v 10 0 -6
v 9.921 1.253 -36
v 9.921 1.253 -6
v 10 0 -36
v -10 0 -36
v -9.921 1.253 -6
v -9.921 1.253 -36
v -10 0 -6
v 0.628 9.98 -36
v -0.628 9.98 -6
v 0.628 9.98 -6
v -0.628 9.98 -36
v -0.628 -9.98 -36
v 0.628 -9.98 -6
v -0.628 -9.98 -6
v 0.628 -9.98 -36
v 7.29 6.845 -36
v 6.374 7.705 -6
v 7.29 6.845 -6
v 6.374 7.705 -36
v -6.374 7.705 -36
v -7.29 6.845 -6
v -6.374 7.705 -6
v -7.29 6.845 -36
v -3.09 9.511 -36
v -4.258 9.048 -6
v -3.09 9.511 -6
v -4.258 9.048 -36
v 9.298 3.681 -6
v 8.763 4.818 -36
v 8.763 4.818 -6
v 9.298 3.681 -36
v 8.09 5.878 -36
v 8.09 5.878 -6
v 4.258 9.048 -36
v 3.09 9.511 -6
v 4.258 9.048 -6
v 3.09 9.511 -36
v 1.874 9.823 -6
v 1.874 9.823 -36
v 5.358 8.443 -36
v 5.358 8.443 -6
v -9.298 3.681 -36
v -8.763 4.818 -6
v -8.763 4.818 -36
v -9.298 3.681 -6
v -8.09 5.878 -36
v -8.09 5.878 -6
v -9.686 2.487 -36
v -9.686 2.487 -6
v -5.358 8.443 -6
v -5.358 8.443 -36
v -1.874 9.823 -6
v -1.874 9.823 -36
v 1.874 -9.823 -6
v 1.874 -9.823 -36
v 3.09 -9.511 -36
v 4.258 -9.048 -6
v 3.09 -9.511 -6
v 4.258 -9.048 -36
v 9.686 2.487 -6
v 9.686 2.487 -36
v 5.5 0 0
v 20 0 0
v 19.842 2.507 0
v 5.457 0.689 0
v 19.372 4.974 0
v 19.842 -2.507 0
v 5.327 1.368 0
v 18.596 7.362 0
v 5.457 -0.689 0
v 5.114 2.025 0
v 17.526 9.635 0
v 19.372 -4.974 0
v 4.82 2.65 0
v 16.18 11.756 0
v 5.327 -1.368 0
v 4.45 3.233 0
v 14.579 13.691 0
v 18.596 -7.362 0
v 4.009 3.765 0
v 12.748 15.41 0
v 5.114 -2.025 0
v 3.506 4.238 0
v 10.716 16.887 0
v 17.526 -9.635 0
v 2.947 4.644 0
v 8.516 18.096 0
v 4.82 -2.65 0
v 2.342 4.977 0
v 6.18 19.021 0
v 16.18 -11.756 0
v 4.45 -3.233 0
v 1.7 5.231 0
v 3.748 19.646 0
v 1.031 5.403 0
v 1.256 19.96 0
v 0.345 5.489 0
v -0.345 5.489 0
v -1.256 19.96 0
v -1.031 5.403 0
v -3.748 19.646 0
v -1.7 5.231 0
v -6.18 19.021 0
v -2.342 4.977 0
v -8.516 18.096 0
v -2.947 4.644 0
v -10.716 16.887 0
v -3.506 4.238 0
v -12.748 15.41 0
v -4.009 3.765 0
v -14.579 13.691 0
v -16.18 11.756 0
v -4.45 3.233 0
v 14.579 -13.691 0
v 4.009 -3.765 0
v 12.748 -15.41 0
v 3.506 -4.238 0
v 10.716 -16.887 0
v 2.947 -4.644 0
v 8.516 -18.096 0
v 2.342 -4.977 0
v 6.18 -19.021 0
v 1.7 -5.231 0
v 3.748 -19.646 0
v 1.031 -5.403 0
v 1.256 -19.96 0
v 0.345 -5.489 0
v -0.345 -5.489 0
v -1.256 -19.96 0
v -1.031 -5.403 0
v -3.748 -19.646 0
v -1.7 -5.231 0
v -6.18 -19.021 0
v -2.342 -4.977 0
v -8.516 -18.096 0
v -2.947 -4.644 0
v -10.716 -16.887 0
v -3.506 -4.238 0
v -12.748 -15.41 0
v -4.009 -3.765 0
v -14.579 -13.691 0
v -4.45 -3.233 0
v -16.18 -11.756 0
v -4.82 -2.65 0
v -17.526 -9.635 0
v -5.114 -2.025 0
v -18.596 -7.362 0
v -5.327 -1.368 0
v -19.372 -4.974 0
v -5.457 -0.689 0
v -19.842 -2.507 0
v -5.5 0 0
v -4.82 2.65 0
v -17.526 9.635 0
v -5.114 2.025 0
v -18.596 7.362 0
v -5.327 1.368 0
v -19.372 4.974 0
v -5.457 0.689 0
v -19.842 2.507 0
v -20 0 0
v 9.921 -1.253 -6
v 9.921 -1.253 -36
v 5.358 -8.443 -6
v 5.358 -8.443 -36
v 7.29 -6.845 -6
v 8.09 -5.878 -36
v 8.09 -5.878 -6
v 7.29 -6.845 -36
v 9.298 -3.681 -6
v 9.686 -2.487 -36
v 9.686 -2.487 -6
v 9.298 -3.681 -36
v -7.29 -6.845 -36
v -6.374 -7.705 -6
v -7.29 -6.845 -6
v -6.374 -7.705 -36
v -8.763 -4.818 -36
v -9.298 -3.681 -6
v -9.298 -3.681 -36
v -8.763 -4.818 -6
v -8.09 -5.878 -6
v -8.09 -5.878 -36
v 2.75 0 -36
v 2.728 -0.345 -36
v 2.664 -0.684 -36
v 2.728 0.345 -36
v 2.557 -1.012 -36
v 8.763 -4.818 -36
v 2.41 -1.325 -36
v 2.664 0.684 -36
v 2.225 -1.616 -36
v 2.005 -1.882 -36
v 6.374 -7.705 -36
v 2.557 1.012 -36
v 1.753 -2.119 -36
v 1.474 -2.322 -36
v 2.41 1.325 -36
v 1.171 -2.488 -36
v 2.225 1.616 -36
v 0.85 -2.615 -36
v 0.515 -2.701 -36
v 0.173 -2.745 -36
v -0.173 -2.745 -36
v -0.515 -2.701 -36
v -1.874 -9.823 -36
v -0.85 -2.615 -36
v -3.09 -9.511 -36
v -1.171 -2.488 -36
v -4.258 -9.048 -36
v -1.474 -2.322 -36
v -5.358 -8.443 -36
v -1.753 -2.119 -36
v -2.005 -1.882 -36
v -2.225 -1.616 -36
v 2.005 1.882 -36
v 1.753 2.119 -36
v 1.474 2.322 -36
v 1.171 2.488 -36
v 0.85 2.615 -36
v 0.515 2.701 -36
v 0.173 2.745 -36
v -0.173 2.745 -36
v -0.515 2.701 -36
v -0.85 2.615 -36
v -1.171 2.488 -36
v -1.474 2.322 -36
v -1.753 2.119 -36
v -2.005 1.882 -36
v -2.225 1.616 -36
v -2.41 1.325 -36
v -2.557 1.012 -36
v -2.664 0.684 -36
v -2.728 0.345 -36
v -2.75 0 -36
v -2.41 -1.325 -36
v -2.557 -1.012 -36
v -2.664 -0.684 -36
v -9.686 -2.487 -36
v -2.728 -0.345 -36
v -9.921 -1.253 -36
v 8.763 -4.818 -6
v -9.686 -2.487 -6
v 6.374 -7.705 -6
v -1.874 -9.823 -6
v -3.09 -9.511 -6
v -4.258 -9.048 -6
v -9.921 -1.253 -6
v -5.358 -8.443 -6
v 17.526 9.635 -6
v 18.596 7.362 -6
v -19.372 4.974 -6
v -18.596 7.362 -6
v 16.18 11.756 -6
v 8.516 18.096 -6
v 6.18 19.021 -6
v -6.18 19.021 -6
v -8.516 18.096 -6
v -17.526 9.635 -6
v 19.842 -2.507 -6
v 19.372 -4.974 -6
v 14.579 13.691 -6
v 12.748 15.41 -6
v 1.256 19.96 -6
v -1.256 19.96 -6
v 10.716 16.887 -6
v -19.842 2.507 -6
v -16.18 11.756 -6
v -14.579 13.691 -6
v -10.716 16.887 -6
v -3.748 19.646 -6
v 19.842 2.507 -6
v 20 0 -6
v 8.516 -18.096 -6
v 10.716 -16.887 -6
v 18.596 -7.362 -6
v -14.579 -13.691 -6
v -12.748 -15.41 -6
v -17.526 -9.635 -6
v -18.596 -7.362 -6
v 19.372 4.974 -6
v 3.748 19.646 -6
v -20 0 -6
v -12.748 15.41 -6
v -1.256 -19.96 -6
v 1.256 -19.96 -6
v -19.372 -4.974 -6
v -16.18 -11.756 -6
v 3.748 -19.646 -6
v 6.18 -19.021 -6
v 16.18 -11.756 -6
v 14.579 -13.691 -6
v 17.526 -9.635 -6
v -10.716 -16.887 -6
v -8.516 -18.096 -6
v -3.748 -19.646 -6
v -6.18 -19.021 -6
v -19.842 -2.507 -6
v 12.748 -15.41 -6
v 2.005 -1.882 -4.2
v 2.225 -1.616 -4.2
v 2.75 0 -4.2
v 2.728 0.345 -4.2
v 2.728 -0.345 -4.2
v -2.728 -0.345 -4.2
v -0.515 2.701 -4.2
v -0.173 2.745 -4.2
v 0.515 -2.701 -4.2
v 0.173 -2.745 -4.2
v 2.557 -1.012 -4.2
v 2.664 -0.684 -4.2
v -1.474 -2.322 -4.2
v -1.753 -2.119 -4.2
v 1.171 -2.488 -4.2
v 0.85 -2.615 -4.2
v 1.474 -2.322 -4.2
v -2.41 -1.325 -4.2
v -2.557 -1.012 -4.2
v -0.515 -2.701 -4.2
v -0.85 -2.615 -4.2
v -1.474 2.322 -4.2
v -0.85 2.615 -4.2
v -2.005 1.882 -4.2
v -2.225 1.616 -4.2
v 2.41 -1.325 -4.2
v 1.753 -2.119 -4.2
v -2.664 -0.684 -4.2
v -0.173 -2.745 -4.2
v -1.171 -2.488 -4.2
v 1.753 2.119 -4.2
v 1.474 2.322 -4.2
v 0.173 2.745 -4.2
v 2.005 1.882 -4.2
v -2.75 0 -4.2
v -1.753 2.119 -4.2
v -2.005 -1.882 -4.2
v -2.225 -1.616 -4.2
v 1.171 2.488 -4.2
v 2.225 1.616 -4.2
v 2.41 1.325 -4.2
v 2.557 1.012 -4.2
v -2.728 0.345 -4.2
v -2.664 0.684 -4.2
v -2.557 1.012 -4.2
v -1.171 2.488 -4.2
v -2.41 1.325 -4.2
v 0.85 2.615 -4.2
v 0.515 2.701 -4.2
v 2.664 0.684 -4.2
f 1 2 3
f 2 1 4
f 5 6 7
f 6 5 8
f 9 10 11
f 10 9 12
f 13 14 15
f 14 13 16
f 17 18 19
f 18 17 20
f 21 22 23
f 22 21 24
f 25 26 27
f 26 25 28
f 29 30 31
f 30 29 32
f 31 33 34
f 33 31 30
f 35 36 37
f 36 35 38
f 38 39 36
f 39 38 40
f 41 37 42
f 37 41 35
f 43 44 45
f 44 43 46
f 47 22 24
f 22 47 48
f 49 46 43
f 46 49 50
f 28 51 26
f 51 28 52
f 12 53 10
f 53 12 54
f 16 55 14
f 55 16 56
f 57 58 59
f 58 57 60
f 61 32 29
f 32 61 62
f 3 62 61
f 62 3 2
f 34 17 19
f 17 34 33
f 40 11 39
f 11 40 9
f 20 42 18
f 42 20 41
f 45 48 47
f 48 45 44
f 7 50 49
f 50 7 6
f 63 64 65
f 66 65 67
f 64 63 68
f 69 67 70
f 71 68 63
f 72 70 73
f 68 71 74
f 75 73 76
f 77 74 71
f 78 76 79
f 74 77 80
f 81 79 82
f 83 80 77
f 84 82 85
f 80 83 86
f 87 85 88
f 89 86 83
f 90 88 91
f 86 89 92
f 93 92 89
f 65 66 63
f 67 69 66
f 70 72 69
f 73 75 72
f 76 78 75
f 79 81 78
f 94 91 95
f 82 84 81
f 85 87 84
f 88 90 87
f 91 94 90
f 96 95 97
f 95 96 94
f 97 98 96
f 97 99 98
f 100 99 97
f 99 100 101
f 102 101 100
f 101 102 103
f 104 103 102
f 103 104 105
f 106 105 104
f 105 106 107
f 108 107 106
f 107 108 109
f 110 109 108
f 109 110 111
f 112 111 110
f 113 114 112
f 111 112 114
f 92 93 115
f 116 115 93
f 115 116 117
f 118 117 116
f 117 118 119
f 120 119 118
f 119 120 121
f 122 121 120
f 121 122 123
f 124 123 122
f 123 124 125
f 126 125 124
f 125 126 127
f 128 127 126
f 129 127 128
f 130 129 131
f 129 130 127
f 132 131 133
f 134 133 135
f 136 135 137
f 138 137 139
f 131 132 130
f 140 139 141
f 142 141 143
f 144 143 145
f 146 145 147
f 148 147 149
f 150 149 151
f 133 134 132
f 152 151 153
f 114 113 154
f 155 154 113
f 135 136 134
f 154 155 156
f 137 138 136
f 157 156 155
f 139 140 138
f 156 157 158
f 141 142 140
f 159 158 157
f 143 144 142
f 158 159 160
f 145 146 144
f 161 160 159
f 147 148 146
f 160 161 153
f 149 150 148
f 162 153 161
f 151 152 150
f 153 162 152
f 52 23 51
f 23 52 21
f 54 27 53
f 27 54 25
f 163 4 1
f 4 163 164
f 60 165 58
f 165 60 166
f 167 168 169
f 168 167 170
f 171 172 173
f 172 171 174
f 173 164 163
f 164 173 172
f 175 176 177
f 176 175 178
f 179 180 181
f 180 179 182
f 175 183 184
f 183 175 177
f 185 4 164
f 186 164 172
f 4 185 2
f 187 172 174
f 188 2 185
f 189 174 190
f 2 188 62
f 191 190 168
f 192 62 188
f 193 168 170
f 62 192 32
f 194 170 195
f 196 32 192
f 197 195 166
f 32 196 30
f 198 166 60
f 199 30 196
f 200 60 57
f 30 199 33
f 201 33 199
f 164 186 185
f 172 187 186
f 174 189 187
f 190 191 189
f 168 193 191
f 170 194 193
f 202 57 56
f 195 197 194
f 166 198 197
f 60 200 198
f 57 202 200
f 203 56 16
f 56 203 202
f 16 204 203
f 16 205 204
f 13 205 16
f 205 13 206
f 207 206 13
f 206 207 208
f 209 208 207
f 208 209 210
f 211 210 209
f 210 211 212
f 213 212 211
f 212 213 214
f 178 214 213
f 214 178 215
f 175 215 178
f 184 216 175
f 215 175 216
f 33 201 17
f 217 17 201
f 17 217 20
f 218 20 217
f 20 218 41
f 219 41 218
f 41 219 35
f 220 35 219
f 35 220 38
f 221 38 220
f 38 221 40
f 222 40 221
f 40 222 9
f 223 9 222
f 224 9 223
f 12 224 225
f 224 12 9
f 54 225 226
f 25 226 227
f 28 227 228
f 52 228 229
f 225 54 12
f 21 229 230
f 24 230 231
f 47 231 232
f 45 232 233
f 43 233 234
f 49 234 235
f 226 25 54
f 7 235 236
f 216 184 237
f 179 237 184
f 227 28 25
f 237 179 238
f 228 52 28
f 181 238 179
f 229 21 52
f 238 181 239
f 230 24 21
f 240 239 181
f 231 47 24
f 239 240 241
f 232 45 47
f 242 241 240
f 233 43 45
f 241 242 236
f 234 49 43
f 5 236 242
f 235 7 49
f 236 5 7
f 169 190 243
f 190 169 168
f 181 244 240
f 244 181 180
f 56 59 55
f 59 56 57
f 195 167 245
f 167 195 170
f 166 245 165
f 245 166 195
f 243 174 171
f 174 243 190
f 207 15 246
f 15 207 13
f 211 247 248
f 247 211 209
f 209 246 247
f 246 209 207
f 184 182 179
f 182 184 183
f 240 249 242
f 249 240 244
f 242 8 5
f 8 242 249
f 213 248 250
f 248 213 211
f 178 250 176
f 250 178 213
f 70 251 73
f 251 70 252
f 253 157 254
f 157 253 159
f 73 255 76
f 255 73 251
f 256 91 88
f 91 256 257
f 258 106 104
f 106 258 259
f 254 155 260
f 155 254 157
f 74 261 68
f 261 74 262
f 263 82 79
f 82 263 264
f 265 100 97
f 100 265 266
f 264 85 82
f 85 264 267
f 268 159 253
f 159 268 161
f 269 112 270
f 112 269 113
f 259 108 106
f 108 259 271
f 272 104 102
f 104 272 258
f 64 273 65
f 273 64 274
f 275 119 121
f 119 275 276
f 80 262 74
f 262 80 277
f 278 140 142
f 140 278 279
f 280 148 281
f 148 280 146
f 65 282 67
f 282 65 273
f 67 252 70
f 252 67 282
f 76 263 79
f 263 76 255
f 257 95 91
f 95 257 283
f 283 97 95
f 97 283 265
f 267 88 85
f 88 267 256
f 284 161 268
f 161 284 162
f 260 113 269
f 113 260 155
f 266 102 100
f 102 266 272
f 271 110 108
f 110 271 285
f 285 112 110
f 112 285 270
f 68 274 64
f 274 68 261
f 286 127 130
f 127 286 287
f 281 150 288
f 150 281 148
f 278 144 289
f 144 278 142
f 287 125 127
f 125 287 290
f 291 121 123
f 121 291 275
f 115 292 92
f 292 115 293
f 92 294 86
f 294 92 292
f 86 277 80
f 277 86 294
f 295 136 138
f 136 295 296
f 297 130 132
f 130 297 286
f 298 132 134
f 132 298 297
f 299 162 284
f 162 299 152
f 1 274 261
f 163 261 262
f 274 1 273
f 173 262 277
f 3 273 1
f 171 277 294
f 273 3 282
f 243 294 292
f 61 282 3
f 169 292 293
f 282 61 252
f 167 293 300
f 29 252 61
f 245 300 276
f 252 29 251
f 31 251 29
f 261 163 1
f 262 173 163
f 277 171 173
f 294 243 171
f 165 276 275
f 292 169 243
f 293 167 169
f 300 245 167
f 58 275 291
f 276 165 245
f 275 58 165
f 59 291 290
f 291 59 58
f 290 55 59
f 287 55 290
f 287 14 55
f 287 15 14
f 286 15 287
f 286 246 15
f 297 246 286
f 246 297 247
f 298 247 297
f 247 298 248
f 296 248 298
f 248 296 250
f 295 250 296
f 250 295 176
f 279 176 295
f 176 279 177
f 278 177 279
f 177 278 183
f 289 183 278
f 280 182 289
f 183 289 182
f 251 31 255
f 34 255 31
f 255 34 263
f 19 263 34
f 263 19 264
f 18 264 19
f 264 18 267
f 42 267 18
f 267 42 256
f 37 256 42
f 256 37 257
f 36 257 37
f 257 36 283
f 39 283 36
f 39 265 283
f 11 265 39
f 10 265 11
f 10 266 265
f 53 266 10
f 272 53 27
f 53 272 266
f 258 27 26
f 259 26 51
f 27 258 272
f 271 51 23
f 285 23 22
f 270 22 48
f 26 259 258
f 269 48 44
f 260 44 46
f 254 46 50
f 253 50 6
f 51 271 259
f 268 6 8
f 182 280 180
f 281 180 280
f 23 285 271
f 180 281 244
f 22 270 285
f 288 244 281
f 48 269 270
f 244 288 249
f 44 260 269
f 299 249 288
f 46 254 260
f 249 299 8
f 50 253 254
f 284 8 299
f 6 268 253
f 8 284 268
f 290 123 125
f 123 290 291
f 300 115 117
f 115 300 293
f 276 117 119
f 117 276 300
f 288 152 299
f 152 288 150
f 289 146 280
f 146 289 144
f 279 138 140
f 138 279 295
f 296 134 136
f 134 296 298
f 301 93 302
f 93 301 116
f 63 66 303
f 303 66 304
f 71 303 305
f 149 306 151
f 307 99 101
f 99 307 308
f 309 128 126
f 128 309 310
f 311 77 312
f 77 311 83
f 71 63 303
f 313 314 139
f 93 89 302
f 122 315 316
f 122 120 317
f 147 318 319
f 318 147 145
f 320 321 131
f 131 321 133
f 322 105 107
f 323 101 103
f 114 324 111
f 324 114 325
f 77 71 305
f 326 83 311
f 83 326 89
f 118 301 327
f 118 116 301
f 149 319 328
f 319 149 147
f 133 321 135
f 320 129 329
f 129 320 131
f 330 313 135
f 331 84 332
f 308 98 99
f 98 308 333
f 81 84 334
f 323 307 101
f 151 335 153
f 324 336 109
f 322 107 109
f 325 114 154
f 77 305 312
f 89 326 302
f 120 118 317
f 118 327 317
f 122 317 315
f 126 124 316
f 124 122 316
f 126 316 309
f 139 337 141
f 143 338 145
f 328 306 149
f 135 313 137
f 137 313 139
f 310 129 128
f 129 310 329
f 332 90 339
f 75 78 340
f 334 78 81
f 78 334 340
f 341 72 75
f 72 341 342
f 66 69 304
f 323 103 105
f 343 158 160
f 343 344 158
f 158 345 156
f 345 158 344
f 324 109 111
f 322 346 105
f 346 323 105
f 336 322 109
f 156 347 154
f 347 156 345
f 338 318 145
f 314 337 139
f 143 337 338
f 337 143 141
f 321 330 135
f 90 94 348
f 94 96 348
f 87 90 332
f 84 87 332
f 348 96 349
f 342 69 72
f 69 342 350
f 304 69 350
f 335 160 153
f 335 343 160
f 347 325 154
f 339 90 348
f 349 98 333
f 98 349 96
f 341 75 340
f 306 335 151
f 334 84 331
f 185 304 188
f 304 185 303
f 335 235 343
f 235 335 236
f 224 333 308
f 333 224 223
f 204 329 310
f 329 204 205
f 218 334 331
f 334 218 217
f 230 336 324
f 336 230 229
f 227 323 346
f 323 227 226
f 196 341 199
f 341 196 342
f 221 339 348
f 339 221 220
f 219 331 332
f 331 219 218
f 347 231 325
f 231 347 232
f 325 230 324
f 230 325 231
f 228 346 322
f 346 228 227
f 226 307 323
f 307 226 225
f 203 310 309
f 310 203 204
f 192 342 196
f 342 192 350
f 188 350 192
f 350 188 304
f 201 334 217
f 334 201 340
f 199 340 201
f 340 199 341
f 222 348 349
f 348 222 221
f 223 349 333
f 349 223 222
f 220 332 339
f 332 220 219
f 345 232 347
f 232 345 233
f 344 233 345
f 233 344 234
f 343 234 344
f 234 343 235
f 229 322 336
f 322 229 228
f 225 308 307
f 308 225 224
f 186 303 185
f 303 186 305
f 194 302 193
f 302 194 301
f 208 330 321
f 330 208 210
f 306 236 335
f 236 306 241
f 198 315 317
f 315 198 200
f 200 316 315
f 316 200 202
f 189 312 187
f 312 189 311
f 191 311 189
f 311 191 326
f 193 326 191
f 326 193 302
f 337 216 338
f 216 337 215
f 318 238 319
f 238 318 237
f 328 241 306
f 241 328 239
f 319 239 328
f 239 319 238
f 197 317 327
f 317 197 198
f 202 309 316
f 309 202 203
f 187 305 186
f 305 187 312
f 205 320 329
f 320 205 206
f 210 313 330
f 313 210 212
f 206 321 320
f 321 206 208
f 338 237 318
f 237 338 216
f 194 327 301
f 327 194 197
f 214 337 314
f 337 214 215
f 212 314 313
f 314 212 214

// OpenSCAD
$fn = 50;


difference() {
	union() {
		translate(v = [0, 0, -36.0000000000]) {
			cylinder(h = 36, r = 10.0000000000);
		}
		translate(v = [0, 0, -6.0000000000]) {
			cylinder(h = 6, r = 20.0000000000);
		}
	}
	union() {
		translate(v = [0, 0, 0]) {
			rotate(a = [0, 0, 0]) {
				difference() {
					union() {
						#translate(v = [0, 0, -36.0000000000]) {
							cylinder(h = 36, r = 2.2500000000);
						}
						#translate(v = [0, 0, -4.2000000000]) {
							cylinder(h = 4.2000000000, r1 = 2.7500000000, r2 = 5.5000000000);
						}
						#translate(v = [0, 0, -36.0000000000]) {
							cylinder(h = 36, r = 2.7500000000);
						}
						#translate(v = [0, 0, -36.0000000000]) {
							cylinder(h = 36, r = 2.2500000000);
						}
					}
					union();
				}
			}
		}
	}
}
